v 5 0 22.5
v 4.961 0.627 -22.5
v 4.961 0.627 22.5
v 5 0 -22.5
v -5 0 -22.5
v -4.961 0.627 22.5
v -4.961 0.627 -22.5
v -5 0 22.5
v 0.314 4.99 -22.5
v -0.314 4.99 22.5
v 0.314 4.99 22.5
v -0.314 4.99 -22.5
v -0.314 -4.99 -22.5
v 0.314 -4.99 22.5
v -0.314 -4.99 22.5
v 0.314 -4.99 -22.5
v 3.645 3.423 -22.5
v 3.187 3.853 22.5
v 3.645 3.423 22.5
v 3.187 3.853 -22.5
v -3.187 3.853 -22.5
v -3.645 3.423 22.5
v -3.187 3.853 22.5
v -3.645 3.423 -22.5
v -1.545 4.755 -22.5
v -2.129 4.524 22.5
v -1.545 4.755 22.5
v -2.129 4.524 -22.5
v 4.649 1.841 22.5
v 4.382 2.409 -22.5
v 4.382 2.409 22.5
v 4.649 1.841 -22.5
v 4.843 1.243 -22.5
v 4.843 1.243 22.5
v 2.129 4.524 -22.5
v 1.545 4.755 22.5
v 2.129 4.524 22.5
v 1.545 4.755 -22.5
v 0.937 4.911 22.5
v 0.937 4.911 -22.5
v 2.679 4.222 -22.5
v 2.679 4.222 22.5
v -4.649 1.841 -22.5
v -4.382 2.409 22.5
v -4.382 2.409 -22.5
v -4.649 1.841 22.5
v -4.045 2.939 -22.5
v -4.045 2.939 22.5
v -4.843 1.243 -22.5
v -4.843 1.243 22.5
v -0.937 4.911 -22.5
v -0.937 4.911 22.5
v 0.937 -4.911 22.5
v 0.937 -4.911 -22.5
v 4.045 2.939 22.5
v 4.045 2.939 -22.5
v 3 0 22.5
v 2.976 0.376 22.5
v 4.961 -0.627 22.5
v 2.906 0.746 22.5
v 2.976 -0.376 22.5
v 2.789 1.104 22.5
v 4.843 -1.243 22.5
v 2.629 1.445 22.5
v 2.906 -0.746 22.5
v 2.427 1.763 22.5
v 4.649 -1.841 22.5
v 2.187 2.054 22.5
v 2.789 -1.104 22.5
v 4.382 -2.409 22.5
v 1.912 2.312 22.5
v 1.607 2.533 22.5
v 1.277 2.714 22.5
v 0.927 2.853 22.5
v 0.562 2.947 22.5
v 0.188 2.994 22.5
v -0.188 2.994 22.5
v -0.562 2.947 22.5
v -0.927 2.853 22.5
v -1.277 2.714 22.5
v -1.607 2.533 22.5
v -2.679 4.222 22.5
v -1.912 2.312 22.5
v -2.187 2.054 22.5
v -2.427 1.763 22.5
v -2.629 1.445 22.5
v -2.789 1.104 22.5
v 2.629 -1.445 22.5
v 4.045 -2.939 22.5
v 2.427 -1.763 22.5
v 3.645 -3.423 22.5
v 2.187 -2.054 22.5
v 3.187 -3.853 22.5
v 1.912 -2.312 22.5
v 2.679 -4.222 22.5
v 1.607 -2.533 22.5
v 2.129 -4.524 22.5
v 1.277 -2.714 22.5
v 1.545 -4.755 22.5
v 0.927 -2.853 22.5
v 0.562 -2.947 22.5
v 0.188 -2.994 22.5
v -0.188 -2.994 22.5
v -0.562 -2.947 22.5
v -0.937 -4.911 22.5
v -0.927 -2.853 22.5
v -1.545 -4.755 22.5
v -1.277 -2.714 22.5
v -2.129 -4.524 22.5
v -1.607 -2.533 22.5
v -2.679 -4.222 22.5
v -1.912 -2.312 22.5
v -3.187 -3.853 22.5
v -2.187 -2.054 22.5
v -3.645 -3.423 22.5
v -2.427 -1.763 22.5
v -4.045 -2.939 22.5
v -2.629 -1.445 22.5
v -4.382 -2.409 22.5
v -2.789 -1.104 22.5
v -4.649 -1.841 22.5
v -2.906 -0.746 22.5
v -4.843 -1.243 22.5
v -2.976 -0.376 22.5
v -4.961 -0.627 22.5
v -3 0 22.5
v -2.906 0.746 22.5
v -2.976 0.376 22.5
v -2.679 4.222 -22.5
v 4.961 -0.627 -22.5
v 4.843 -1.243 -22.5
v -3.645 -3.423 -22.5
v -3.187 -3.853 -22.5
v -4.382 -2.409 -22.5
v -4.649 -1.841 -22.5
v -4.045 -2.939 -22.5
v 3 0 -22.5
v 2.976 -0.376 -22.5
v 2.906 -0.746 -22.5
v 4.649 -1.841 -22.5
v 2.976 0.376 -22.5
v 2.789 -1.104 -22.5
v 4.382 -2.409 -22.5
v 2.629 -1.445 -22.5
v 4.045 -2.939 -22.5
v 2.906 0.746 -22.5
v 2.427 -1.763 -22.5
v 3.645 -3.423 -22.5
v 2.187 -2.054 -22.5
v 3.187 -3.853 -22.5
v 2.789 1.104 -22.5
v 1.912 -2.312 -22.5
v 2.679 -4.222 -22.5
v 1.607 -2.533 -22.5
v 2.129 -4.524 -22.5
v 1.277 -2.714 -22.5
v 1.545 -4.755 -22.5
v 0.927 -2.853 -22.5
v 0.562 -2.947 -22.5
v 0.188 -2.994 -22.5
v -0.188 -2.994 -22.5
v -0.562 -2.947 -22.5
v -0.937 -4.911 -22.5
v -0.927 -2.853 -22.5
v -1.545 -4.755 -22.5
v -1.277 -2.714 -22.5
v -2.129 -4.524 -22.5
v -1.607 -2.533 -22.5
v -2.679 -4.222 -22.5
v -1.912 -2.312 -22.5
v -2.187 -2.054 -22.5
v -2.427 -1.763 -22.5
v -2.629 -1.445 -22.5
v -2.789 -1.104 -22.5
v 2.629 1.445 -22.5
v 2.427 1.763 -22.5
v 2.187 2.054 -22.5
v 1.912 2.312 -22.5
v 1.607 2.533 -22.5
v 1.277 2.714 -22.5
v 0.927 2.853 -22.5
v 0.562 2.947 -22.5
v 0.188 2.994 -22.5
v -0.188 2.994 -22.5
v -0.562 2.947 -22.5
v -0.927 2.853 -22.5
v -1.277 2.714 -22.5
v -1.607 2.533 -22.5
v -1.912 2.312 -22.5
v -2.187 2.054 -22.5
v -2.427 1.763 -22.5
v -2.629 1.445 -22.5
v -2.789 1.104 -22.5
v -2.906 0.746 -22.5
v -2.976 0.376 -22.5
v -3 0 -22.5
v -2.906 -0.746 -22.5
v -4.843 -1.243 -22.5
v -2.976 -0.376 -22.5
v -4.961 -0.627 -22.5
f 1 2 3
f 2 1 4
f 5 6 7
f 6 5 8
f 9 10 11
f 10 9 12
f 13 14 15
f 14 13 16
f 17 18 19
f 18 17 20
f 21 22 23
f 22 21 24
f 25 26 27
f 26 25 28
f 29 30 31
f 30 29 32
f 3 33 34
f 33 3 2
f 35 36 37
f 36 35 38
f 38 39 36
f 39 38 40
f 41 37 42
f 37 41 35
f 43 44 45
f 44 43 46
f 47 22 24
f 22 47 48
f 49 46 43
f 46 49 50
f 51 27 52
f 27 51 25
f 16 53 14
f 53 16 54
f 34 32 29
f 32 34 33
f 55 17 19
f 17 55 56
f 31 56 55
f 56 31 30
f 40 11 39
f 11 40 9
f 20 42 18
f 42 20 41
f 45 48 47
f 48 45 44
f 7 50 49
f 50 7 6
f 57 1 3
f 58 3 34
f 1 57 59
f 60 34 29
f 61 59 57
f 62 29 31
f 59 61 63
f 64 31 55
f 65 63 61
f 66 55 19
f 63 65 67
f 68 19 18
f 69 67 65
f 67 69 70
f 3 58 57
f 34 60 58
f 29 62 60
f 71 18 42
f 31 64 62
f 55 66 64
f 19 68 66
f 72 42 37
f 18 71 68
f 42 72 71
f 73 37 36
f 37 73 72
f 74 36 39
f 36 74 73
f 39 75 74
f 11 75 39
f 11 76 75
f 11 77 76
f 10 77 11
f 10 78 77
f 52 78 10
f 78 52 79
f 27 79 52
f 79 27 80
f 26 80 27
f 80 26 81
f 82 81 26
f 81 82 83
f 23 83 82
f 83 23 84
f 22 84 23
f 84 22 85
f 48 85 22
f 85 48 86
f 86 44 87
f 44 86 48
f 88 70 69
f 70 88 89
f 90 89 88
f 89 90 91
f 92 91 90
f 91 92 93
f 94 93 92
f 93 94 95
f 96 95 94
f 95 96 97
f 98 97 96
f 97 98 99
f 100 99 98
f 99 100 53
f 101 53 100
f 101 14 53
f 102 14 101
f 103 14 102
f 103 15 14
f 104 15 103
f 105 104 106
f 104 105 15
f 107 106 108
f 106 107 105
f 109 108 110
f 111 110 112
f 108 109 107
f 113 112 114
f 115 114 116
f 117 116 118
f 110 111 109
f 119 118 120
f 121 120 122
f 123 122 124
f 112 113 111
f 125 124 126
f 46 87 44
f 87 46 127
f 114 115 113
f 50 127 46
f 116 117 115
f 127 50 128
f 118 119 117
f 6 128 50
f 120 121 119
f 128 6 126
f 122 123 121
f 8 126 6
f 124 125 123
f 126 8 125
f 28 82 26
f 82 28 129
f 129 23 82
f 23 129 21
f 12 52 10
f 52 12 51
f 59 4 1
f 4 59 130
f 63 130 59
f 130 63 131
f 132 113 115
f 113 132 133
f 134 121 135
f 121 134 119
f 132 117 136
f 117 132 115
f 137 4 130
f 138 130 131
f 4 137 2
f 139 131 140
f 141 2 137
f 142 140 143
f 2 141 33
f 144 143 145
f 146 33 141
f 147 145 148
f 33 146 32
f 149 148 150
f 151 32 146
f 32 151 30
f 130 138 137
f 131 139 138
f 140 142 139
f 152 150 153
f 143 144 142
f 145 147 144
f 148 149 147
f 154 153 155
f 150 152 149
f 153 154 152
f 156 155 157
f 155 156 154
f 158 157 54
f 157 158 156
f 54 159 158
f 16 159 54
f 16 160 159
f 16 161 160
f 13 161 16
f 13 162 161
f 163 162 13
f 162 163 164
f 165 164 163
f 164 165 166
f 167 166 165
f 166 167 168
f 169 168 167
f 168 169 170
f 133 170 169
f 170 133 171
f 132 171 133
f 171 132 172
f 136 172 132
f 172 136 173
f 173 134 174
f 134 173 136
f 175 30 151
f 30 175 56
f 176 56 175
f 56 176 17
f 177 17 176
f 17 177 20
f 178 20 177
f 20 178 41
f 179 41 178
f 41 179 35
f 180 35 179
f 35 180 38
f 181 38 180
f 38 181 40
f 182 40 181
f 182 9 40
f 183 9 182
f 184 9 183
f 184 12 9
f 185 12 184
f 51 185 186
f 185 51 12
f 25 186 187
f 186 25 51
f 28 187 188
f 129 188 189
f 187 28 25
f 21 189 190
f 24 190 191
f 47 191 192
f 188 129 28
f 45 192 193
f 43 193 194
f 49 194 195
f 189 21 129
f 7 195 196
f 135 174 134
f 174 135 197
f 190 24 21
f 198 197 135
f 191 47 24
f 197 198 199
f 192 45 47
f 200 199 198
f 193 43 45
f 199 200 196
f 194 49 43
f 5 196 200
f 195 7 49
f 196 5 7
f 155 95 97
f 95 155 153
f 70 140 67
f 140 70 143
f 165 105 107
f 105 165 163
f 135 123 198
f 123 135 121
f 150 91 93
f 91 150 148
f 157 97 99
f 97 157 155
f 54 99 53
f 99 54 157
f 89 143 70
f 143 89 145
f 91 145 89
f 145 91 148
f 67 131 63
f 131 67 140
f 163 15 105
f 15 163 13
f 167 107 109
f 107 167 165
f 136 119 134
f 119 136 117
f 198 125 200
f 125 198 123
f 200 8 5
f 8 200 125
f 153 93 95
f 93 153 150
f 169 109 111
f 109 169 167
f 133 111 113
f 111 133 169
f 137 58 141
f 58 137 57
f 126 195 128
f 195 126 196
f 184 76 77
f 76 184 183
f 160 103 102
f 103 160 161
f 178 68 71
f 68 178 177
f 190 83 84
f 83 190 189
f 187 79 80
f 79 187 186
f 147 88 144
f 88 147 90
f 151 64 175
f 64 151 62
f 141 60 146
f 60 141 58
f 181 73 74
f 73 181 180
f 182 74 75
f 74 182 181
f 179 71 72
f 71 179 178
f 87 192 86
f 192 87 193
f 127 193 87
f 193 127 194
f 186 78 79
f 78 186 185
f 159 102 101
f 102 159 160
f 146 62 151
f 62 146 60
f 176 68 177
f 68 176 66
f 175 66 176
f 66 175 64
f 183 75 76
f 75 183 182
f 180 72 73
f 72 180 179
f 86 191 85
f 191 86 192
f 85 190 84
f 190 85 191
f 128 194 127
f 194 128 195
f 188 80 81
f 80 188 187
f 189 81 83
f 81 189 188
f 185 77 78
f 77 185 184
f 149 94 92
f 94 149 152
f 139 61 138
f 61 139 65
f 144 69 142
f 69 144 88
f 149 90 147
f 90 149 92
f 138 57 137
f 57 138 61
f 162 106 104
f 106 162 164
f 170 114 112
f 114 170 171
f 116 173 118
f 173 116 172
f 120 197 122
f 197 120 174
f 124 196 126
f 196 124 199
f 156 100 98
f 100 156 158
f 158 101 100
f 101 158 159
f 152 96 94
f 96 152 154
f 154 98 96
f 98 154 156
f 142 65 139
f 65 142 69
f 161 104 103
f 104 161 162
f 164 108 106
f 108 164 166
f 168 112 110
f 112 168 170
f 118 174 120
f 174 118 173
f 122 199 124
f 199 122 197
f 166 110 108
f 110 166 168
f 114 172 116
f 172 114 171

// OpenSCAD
$fn = 50;


difference() {
	union() {
		translate(v = [0, 0, -22.5000000000]) {
			cylinder(h = 45, r = 5.0000000000);
		}
	}
	union() {
		translate(v = [0, 0, -100.0000000000]) {
			cylinder(h = 200, r = 3);
		}
	}
}
